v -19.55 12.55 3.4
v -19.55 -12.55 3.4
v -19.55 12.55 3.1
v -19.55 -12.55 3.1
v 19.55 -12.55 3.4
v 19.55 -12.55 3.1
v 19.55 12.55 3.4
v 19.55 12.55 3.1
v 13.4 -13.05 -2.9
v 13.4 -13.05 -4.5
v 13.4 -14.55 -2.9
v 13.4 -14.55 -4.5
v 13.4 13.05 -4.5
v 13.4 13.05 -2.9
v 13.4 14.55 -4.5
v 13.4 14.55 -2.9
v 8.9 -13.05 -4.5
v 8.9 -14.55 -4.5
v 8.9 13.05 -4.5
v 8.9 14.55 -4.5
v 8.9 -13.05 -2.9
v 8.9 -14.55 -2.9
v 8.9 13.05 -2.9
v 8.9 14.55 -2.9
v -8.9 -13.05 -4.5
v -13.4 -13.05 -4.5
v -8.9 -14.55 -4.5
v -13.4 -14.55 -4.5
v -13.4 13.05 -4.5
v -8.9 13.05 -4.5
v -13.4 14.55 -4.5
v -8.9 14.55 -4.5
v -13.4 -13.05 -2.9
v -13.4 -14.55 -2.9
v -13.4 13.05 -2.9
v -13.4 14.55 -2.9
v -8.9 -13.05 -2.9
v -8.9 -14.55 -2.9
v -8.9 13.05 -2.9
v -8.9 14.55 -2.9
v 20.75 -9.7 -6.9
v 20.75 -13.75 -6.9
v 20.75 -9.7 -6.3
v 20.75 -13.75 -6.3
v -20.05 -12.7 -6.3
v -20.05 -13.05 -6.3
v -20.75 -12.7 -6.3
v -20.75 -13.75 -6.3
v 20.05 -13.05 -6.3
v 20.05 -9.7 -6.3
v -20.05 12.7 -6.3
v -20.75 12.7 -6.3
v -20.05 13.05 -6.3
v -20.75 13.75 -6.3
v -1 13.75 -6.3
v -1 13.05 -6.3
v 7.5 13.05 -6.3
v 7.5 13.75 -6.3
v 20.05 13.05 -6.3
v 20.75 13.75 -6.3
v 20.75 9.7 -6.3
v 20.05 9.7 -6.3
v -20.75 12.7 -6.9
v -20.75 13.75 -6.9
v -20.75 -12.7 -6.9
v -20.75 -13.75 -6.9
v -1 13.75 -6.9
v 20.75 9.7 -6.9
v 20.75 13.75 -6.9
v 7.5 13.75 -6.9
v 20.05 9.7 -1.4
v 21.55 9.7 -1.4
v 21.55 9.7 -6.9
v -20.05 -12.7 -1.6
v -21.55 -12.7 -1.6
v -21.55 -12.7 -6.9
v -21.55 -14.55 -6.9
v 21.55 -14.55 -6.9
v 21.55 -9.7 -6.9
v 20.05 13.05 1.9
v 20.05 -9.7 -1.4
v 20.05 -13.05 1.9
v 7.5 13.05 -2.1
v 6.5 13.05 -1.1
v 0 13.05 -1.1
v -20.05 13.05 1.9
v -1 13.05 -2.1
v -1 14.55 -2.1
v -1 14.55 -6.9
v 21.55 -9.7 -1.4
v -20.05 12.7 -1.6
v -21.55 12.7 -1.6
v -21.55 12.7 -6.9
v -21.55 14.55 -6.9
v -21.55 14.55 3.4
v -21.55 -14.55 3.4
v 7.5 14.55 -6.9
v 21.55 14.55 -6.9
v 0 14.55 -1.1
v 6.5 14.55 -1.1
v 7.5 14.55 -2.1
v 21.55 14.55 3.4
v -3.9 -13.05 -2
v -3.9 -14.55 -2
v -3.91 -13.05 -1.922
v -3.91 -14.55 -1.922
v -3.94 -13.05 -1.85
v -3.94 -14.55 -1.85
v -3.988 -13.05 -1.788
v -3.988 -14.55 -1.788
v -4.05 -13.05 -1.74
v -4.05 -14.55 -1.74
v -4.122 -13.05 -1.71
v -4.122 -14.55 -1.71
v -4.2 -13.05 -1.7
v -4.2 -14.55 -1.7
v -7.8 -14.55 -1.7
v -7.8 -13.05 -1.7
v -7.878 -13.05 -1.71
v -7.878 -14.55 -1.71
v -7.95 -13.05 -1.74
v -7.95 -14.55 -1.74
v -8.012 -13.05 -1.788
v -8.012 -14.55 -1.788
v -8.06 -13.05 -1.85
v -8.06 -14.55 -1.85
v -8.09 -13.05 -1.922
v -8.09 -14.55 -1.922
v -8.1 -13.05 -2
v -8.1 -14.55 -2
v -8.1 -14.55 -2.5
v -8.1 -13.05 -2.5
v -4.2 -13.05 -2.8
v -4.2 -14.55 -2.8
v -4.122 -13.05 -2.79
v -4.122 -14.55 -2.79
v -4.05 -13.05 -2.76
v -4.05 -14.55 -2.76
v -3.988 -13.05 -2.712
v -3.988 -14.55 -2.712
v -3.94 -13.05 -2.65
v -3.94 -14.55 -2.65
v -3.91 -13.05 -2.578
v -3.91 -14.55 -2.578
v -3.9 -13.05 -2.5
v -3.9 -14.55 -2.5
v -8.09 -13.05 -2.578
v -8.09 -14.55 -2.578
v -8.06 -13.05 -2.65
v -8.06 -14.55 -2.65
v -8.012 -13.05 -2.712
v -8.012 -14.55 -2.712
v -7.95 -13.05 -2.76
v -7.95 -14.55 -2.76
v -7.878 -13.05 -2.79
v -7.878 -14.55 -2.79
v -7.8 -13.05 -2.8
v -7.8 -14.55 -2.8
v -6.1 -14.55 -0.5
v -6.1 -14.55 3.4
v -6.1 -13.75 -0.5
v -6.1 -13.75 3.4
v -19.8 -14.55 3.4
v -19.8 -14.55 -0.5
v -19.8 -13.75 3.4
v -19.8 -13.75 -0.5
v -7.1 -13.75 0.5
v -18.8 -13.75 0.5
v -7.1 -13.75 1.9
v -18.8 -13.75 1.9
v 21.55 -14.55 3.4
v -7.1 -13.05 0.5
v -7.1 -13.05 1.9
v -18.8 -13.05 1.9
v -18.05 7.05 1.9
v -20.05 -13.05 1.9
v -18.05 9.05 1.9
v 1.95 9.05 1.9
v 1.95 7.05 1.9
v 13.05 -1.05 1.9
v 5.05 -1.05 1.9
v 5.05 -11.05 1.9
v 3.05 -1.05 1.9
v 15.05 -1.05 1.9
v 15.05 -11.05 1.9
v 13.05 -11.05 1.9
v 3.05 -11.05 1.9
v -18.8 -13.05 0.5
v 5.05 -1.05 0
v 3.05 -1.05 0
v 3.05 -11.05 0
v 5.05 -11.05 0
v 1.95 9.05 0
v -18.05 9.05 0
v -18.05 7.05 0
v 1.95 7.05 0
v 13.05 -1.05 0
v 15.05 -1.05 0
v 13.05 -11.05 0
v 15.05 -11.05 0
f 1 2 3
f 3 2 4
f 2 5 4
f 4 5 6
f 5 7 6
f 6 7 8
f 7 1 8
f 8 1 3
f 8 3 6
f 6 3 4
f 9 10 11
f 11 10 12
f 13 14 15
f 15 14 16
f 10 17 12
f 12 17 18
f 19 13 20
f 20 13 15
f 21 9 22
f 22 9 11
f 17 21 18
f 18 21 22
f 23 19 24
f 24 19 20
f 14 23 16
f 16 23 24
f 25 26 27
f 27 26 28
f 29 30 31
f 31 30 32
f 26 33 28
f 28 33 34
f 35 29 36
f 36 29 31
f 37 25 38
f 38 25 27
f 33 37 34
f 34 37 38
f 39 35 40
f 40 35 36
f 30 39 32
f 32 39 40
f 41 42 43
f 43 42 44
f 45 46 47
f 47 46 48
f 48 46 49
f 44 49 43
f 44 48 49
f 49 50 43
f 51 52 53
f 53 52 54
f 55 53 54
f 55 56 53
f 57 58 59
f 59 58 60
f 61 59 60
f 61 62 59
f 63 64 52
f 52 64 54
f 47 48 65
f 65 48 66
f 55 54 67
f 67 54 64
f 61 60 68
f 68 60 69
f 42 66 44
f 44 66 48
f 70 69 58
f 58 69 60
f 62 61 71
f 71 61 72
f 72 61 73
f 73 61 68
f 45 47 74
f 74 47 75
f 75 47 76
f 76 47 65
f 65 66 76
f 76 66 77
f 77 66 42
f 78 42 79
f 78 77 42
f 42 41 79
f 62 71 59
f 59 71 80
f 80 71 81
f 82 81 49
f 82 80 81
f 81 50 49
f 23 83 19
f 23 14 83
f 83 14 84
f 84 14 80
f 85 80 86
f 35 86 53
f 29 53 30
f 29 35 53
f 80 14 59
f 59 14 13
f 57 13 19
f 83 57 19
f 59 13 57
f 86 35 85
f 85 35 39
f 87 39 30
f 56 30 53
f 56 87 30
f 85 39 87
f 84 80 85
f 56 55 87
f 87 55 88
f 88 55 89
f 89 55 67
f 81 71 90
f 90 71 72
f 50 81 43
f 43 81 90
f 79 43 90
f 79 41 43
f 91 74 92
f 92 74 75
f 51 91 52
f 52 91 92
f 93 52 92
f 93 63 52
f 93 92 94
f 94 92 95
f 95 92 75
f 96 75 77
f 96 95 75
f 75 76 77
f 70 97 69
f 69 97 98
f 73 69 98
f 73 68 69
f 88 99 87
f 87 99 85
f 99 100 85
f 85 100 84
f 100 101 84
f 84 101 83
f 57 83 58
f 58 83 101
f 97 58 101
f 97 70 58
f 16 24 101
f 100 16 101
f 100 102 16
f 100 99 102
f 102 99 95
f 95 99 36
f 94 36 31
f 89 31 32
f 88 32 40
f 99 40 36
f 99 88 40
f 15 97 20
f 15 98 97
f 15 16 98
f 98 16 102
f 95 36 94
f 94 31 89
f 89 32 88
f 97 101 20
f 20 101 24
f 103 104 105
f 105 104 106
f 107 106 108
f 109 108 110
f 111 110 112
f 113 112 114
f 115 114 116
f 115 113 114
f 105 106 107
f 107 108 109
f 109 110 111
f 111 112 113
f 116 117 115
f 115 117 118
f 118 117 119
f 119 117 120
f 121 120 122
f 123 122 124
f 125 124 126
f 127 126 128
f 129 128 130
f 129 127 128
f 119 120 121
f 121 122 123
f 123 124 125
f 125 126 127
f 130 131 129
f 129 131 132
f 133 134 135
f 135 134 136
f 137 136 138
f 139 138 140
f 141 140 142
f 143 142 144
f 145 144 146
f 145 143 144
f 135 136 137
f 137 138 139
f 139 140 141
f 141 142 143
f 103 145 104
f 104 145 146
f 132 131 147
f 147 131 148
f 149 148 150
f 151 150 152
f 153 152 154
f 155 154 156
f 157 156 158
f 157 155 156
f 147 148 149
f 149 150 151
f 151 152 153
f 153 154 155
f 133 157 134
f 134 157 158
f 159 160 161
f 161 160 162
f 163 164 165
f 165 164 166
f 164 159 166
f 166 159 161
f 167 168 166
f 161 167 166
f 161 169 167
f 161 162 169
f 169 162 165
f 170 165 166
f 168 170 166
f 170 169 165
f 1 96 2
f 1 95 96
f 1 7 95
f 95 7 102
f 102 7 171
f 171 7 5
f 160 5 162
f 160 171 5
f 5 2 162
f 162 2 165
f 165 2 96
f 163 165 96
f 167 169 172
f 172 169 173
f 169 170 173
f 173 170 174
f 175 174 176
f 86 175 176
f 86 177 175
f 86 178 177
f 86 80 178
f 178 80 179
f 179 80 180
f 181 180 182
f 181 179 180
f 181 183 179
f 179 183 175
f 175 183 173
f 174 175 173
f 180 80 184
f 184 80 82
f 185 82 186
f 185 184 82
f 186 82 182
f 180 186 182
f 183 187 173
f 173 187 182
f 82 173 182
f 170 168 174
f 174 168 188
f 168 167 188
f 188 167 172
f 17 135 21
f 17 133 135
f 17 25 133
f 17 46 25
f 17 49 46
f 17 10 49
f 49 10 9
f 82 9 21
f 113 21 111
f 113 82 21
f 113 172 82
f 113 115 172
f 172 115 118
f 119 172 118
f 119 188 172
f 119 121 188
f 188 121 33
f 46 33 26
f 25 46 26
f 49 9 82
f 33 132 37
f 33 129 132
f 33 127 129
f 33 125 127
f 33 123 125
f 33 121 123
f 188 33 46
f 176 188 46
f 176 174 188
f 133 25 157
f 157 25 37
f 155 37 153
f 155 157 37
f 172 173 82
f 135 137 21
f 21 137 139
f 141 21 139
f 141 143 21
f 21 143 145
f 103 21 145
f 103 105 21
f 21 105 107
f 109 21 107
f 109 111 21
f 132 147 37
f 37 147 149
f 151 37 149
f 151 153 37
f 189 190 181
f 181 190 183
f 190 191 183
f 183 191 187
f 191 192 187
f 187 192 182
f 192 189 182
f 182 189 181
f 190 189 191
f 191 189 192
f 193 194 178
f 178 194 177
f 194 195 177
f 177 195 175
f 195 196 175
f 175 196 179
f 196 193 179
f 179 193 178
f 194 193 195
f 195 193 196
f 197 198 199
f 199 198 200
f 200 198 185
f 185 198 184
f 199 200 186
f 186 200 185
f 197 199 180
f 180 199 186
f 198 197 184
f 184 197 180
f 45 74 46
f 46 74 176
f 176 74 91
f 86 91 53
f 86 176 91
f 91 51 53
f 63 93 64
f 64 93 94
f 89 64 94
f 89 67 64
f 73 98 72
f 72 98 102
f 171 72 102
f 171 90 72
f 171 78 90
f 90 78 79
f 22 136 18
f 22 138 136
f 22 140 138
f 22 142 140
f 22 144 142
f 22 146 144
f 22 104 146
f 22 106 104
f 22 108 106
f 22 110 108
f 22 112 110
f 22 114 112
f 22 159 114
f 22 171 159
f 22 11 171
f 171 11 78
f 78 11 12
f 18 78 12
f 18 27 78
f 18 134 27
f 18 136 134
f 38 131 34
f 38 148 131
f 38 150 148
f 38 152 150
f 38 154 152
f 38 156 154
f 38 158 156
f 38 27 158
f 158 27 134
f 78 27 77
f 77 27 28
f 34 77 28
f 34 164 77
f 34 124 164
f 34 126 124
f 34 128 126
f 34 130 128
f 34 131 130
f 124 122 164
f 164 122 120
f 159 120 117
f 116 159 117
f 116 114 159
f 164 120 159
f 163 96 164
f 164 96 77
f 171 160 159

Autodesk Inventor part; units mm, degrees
ref_plane "YZ Plane" through (0, 0, 0) normal (1, 0, 0) x (0, 1, 0)
ref_plane "XZ Plane" through (0, 0, 0) normal (0, 1, 0) x (-1, 0, 0)
ref_plane "EbeneBoden" through (-11.5031, -4.6031, 1.9) normal (0, 0, 1) x (1, 0, 0)
ref_plane "EbeneWändeEnde" through (17.7, 4.9, -6.9) normal (0, 0, -1) x (-1, 0, 0)
sketch "SkizzeBoden" plane through (-11.5031, -4.6031, 1.9) normal (0, 0, 1) x (1, 0, 0)
  line L0 (-7.1969, 7.4031) -> (6.8031, 7.4031) projected
  line L1 (6.8031, 7.4031) -> (6.8031, -7.7969) projected
  line L2 (6.8031, -7.7969) -> (4.3031, -7.7969) projected
  line L3 (4.3031, -7.7969) -> (4.3031, -6.7969) projected
  line L4 (4.3031, -6.7969) -> (-7.1969, -6.7969) projected
  line L5 (-7.1969, -6.7969) -> (-7.1969, 7.4031) projected
  line L6 (31.5031, 17.6031) -> (-8.4969, 17.6031) projected
  line L7 (-8.4969, 17.6031) -> (-8.4969, -8.3969) projected
  line L8 (-8.4969, -8.3969) -> (31.5031, -8.3969) projected
  line L9 (31.5031, -8.3969) -> (31.5031, 17.6031) projected
  line L10 (-18.6669, 4.6031) -> (41.6731, 4.6031) projected
  line L11 (11.5031, -15.7669) -> (11.5031, 24.9731) projected
  line L12 (-10.0469, 19.1531) -> (33.0531, 19.1531)
  line L13 (33.0531, 19.1531) -> (33.0531, -9.9469)
  line L14 (33.0531, -9.9469) -> (-10.0469, -9.9469)
  line L15 (-10.0469, -9.9469) -> (-10.0469, 19.1531)
  point P0 (11.5031, 4.6031)
  dimension "d0" = 1.55
extrude "Boden" add sketch "SkizzeBoden" along normal blind 1.5
sketch "SkizzeWände" plane through (-11.5031, -4.6031, 1.9) normal (0, 0, -1) x (-1, 0, 0)
  line L0 (10.0469, 19.1531) -> (-33.0531, 19.1531) projected
  line L1 (-33.0531, 19.1531) -> (-33.0531, -9.9469) projected
  line L2 (-33.0531, -9.9469) -> (10.0469, -9.9469) projected
  line L3 (10.0469, -9.9469) -> (10.0469, 19.1531) projected
  line L4 (-31.5531, 17.6531) -> (8.5469, 17.6531)
  line L5 (8.5469, 17.6531) -> (8.5469, -8.4469)
  line L6 (8.5469, -8.4469) -> (-31.5531, -8.4469)
  line L7 (-31.5531, -8.4469) -> (-31.5531, 17.6531)
  point P0 (-11.5031, 4.6031)
  dimension "d3" = 1.5
extrude "Wände" add sketch "SkizzeWände" along normal up to surface (8.8 mm away)
sketch "SkizzeAuflage" plane through (-11.5031, -4.6031, 1.9) normal (0, 0, -1) x (-1, 0, 0)
  line L0 (8.5469, -8.4469) -> (8.5469, 17.6531) projected
  line L1 (-31.5531, -8.4469) -> (8.5469, -8.4469) projected
  line L2 (-31.5531, 17.6531) -> (-31.5531, -8.4469) projected
  line L3 (8.5469, 17.6531) -> (-31.5531, 17.6531) projected
  line L4 (10.0469, 19.1531) -> (10.0469, -9.9469) projected
  line L5 (-33.0531, 19.1531) -> (10.0469, 19.1531) projected
  line L6 (-33.0531, -9.9469) -> (-33.0531, 19.1531) projected
  line L7 (10.0469, -9.9469) -> (-33.0531, -9.9469) projected
  line L8 (-26.5531, 3.5531) -> (-24.5531, 3.5531)
  line L9 (-24.5531, 3.5531) -> (-24.5531, -6.4469)
  line L10 (-24.5531, -6.4469) -> (-26.5531, -6.4469)
  line L11 (-26.5531, -6.4469) -> (-26.5531, 3.5531)
  line L12 (-16.5531, 3.5531) -> (-14.5531, 3.5531)
  line L13 (-14.5531, 3.5531) -> (-14.5531, -6.4469)
  line L14 (-14.5531, -6.4469) -> (-16.5531, -6.4469)
  line L15 (-16.5531, -6.4469) -> (-16.5531, 3.5531)
  line L16 (6.5469, 13.6531) -> (-13.4531, 13.6531)
  line L17 (-13.4531, 13.6531) -> (-13.4531, 11.6531)
  line L18 (-13.4531, 11.6531) -> (6.5469, 11.6531)
  line L19 (6.5469, 11.6531) -> (6.5469, 13.6531)
  point P0 (-11.5031, 4.6031)
  dimension "d6" = 5
  dimension "d7" = 2
  dimension "d8" = 8
  dimension "d9" = 2
  dimension "d10" = 10
  dimension "d11" = 20
  dimension "d12" = 2
  dimension "d13" = 4
  dimension "d14" = 2
ref_plane "EbeneAuflage" through (-20, -13, 0) normal (0, 0, 1) x (1, 0, 0)
extrude "Auflage" add sketch "SkizzeAuflage" along normal up to surface (1.9 mm away) contours L8 L9 L10 L11 | L12 L13 L14 L15 | L19 L18 L17 L16
sketch "SkizzeSD" plane through (-21.55, -14.55, 3.4) normal (0, -1, 0) x (1, 0, 0)
  line L0 (43.1, 0) -> (43.1, -10.3) projected
  line L1 (3.05, -2.6) -> (14.15, -2.6) projected
  line L2 (14.15, -2.6) -> (14.15, -1.6) projected
  line L3 (14.15, -1.6) -> (3.05, -1.6) projected
  line L4 (3.05, -1.6) -> (3.05, -2.6) projected
  line L5 (41.6, -1.5) -> (1.5, -1.5) projected
  line L6 (14.45, -1.5) -> (2.75, -1.5)
  line L7 (2.75, -1.5) -> (2.75, -2.9)
  line L8 (2.75, -2.9) -> (14.45, -2.9)
  line L9 (14.45, -2.9) -> (14.45, -1.5)
  line L10 (8.6, -4) -> (8.6, -0.8838) construction
  point P0 (21.55, -3.4)
  point P1 (8.6, -2.6)
  dimension "d17" = 0.3
  dimension "d18" = 0.3
extrude "SD" cut sketch "SkizzeSD" against normal up to surface (1.5 mm away) contours L4 L3 L2 L1 | L9 L8 L7 L5
sketch "Skizze7" plane through (-21.55, -14.55, 3.4) normal (0, -1, 0) x (1, 0, 0)
  line L0 (14.45, -1.5) -> (14.45, -2.9) projected
  line L1 (14.45, -2.9) -> (2.75, -2.9) projected
  line L2 (0, 0) -> (43.1, 0) projected
  line L3 (15.45, -3.9) -> (1.75, -3.9)
  line L4 (1.75, -3.9) -> (1.75, 0)
  line L5 (1.75, 0) -> (15.45, 0)
  line L6 (15.45, 0) -> (15.45, -3.9)
  line L7 (8.6, -3.6567) -> (8.6, -1) construction
  point P0 (21.55, -3.4)
  point P1 (8.6, -2.9)
  dimension "d21" = 1
  dimension "d22" = 1
extrude "SDHilfe" cut sketch "Skizze7" against normal blind 0.8
sketch "SkizzeLED" plane through (-21.55, -14.55, -6.9) normal (0, -1, 0) x (1, 0, 0)
  line L0 (16.55, 5.2) -> (17.55, 5.2) projected
  line L1 (16.55, 5.2) -> (16.55, 4.1) projected
  line L2 (17.55, 4.1) -> (16.55, 4.1) projected
  line L3 (17.55, 5.2) -> (17.55, 4.1) projected
  line L4 (15.05, 5.2) -> (16.05, 5.2) projected
  line L5 (15.05, 5.2) -> (15.05, 4.1) projected
  line L6 (16.05, 4.1) -> (15.05, 4.1) projected
  line L7 (16.05, 5.2) -> (16.05, 4.1) projected
  line L8 (13.55, 5.2) -> (14.55, 5.2) projected
  line L9 (13.55, 5.2) -> (13.55, 4.1) projected
  line L10 (14.55, 4.1) -> (13.55, 4.1) projected
  line L11 (14.55, 5.2) -> (14.55, 4.1) projected
  line L12 (15.55, 3.5363) -> (15.55, 5.4531) construction
  line L13 (17.65, 4.1) -> (13.45, 4.1)
  line L14 (13.45, 4.1) -> (13.45, 5.2)
  line L15 (13.45, 5.2) -> (17.65, 5.2)
  line L16 (17.65, 5.2) -> (17.65, 4.1)
  line L17 (41.55, 5.2) -> (1.55, 5.2) projected
  point P0 (21.55, 6.9)
  point P1 (15.55, 4.1)
  dimension "d25" = 0.1
extrude "LED" cut sketch "SkizzeLED" against normal up to surface (1.5 mm away)
fillet "RundungLED" radius 0.3 4 edges at (-8.1, -13.8, -2.8) (-3.9, -13.8, -2.8) (-8.1, -13.8, -1.7) (-3.9, -13.8, -1.7)
sketch "SkizzeUSB" plane through (-21.55, 14.55, 3.4) normal (0, 1, 0) x (1, 0, 0)
  line L0 (43.1, 10.3) -> (0, 10.3) projected
  ellipse E0 centre (28.223, 7.641) end of major axis (28.5465, 8.1263) minor radius 0.5 (28.75, 7.72) -> (28.2975, 8.2) ccw projected
  line L1 (28.2975, 8.2) -> (21.3025, 8.2) projected
  ellipse E1 centre (21.377, 7.641) end of major axis (21.0535, 8.1263) minor radius 0.5 (21.3025, 8.2) -> (20.85, 7.72) ccw projected
  line L2 (20.85, 7.72) -> (20.85, 5.9068) projected
  line L3 (21.8935, 4.8) -> (20.85, 5.9068) projected
  line L4 (21.8935, 4.8) -> (27.7065, 4.8) projected
  line L5 (28.75, 5.9068) -> (27.7065, 4.8) projected
  line L6 (28.75, 5.9068) -> (28.75, 7.72) projected
  ellipse E2 centre (28.223, 7.641) end of major axis (28.5465, 8.1263) minor radius 0.5 (28.75, 7.72) -> (28.2975, 8.2) ccw projected
  line L7 (28.2975, 8.2) -> (21.3025, 8.2) projected
  ellipse E3 centre (21.377, 7.641) end of major axis (21.0535, 8.1263) minor radius 0.5 (21.3025, 8.2) -> (20.85, 7.72) ccw projected
  line L8 (20.85, 7.72) -> (20.85, 5.9068) projected
  line L9 (21.8935, 4.8) -> (20.85, 5.9068) projected
  line L10 (21.8935, 4.8) -> (27.7065, 4.8) projected
  line L11 (28.75, 5.9068) -> (27.7065, 4.8) projected
  line L12 (28.75, 5.9068) -> (28.75, 7.72) projected
  line L13 (20.55, 10.3) -> (29.05, 10.3)
  line L14 (29.05, 10.3) -> (29.05, 4.5)
  line L15 (29.05, 4.5) -> (20.55, 4.5)
  line L16 (20.55, 4.5) -> (20.55, 10.3)
  line L17 (24.8, 8.6856) -> (24.8, 4.4469) construction
  point P0 (21.55, 3.4)
  point P1 (24.8, 8.2)
  dimension "d29" = 0.3
  dimension "d30" = 0.3
extrude "USB" cut sketch "SkizzeUSB" against normal up to surface (1.5 mm away) contours L14 L15 L16 L0 | L6 L5 L4 L3 L2 E1 L1 E0
chamfer "FaseUSB" distance 1 angle 45 2 edges at (7.5, 13.8, -1.1) (-1, 13.8, -1.1)
sketch "Skizze10" plane through (-21.55, -14.55, 3.4) normal (-1, 0, 0) x (0, 0, 1)
  line L0 (-10.3, 29.1) -> (-10.3, 0) projected
  line L1 (-5.1, 26.95) -> (-5.1, 11.95) projected
  line L2 (-5.1, 26.95) -> (-8.8, 26.95) projected
  line L3 (-8.8, 11.95) -> (-8.8, 26.95) projected
  line L4 (-5.1, 11.95) -> (-8.8, 11.95) projected
  line L5 (-5.1, 11.15) -> (-5.1, 2.15) projected
  line L6 (-5.1, 11.15) -> (-8.8, 11.15) projected
  line L7 (-8.8, 2.15) -> (-8.8, 11.15) projected
  line L8 (-5.1, 2.15) -> (-8.8, 2.15) projected
  line L9 (-5, 1.85) -> (-10.3, 1.85)
  line L10 (-10.3, 1.85) -> (-10.3, 27.25)
  line L11 (-10.3, 27.25) -> (-5, 27.25)
  line L12 (-5, 27.25) -> (-5, 1.85)
  line L13 (0, 29.1) -> (0, 0) projected
  line L14 (-10.3, 29.1) -> (0, 29.1) projected
  line L15 (3, 14.55) -> (-13.529, 14.55) construction
  line L16 (-8.4, 2.55) -> (-8.4, 10.75) projected
  line L17 (-8.4, 10.75) -> (-5.5, 10.75) projected
  line L18 (-5.5, 10.75) -> (-5.5, 2.55) projected
  line L19 (-5.5, 2.55) -> (-8.4, 2.55) projected
  line L20 (-8.4, 12.35) -> (-8.4, 26.55) projected
  line L21 (-8.4, 26.55) -> (-5.5, 26.55) projected
  line L22 (-5.5, 26.55) -> (-5.5, 12.35) projected
  line L23 (-5.5, 12.35) -> (-8.4, 12.35) projected
  point P0 (-3.4, 14.55)
  point P1 (0, 14.55)
  dimension "d36" = 0.3
  dimension "d38" = 0.1
extrude "JSTFC" cut sketch "Skizze10" against normal up to surface (1.5 mm away) contours L11 L12 L9 L0 | L1 L4 L3 L2 | L5 L8 L7 L6 | L16 L17 L18 L19 | L20 L21 L22 L23
sketch "Skizze11" plane through (21.55, -14.55, 3.4) normal (1, 0, 0) x (0, 0, -1)
  line L0 (10.3, 0) -> (10.3, 29.1) projected
  line L1 (13.0125, 14.55) -> (-3.6442, 14.55) construction
  line L2 (5.1, 14.95) -> (5.1, 23.95) projected
  line L3 (5.1, 14.95) -> (8.8, 14.95) projected
  line L4 (8.8, 23.95) -> (8.8, 14.95) projected
  line L5 (5.1, 23.95) -> (8.8, 23.95) projected
  line L6 (5.1, 5.15) -> (5.1, 14.15) projected
  line L7 (5.1, 5.15) -> (8.8, 5.15) projected
  line L8 (8.8, 14.15) -> (8.8, 5.15) projected
  line L9 (5.1, 14.15) -> (8.8, 14.15) projected
  line L10 (10.3, 24.25) -> (4.8, 24.25)
  line L11 (4.8, 24.25) -> (4.8, 4.85)
  line L12 (4.8, 4.85) -> (10.3, 4.85)
  line L13 (10.3, 4.85) -> (10.3, 24.25)
  point P0 (3.4, 14.55)
  point P1 (10.3, 14.55)
  dimension "d41" = 0.3
  dimension "d42" = 0.3
extrude "JSTOSD" cut sketch "Skizze11" against normal up to surface (1.5 mm away) contours L12 L11 L10 L0 | L2 L5 L4 L3 | L6 L9 L8 L7
sketch "Skizze12" plane through (21.55, -14.55, -6.9) normal (0, 0, -1) x (-1, 0, 0)
  line L0 (0, 0) -> (0, 4.85) projected
  line L1 (43.1, 0) -> (0, 0) projected
  line L2 (21.55, -5.82) -> (21.55, 34.92) projected
  line L3 (51.72, 14.55) -> (-8.62, 14.55) projected
  line L4 (0.8, 28.3) -> (42.3, 28.3)
  line L5 (42.3, 28.3) -> (42.3, 0.8)
  line L6 (42.3, 0.8) -> (0.8, 0.8)
  line L7 (0.8, 0.8) -> (0.8, 28.3)
  point P0 (21.55, 14.55)
  dimension "d45" = 0.8
  dimension "d46" = 0.8
extrude "Lippe" cut sketch "Skizze12" against normal blind 0.6
sketch "SkizzeSchnapper" plane through (-21.55, -14.55, -6.9) normal (0, -1, 0) x (1, 0, 0)
  line L0 (36.15, 5.2) -> (41.55, 5.2) projected
  line L1 (36.15, 5.2) -> (36.15, 1.5) projected
  line L2 (42.35, 1.5) -> (36.15, 1.5) projected
  line L3 (42.35, 5.2) -> (42.35, 1.5) projected
  line L4 (41.55, 5.2) -> (42.35, 5.2) projected
  line L5 (0.75, 5.2) -> (1.55, 5.2) projected
  line L6 (0.75, 5.2) -> (0.75, 1.5) projected
  line L7 (6.95, 1.5) -> (0.75, 1.5) projected
  line L8 (6.95, 5.2) -> (6.95, 1.5) projected
  line L9 (1.55, 5.2) -> (6.95, 5.2) projected
  ellipse E0 centre (28.223, 2.659) end of major axis (28.5465, 2.1737) minor radius 0.5 (28.2975, 2.1) -> (28.75, 2.58) ccw projected
  line L10 (28.2975, 2.1) -> (21.3025, 2.1) projected
  ellipse E1 centre (21.377, 2.659) end of major axis (21.0535, 2.1737) minor radius 0.5 (20.85, 2.58) -> (21.3025, 2.1) ccw projected
  line L11 (20.85, 2.58) -> (20.85, 4.3932) projected
  line L12 (21.8935, 5.5) -> (20.85, 4.3932) projected
  line L13 (21.8935, 5.5) -> (27.7065, 5.5) projected
  line L14 (28.75, 4.3932) -> (27.7065, 5.5) projected
  line L15 (28.75, 4.3932) -> (28.75, 2.58) projected
  line L16 (34.95, 2.4) -> (30.45, 2.4)
  line L17 (30.45, 2.4) -> (30.45, 4)
  line L18 (30.45, 4) -> (34.95, 4)
  line L19 (34.95, 4) -> (34.95, 2.4)
  line L20 (21.55, -2.06) -> (21.55, 12.36) projected
  line L21 (1.5, 0.6) -> (0.8, 0.6) projected
  line L22 (41.6, 0.6) -> (1.5, 0.6) projected
  line L23 (42.3, 0.6) -> (41.6, 0.6) projected
  line L24 (0.8, 0.6) -> (42.3, 0.6) projected
  line L25 (41.55, 5.2) -> (1.55, 5.2) projected
  line L26 (8.15, 2.4) -> (12.65, 2.4)
  line L27 (12.65, 2.4) -> (12.65, 4)
  line L28 (12.65, 4) -> (8.15, 4)
  line L29 (8.15, 4) -> (8.15, 2.4)
  point P0 (21.55, 6.9)
  dimension "d49" = 4.5
  dimension "d50" = 1.8
  dimension "d51" = 1.2
  dimension "d52" = 1.6
  dimension "d53" = 1.2
extrude "Schnapper" cut sketch "SkizzeSchnapper" against normal up to surface (29.1 mm away) contours L16 L17 L18 L19 | L29 L28 L27 L26
sketch "SkizzeAufkleber" plane through (-11.5031, -4.6031, 3.4) normal (0, 0, 1) x (1, 0, 0)
  line L0 (33.0531, 19.1531) -> (-10.0469, 19.1531) projected
  line L1 (-10.0469, 19.1531) -> (-10.0469, -9.9469) projected
  line L2 (11.5031, -15.7669) -> (11.5031, 24.9731) projected
  line L3 (-18.6669, 4.6031) -> (41.6731, 4.6031) projected
  line L4 (-8.0469, 17.1531) -> (31.0531, 17.1531)
  line L5 (31.0531, 17.1531) -> (31.0531, -7.9469)
  line L6 (31.0531, -7.9469) -> (-8.0469, -7.9469)
  line L7 (-8.0469, -7.9469) -> (-8.0469, 17.1531)
  point P0 (11.5031, 4.6031)
  dimension "d56" = 2
  dimension "d57" = 2
extrude "Aufkleber" cut sketch "SkizzeAufkleber" against normal blind 0.3 contours L4 L5 L3 L2 | L2 L3 L7 L4 | L3 L5 L6 L2 | L2 L6 L7 L3
properties part number "Boden"
